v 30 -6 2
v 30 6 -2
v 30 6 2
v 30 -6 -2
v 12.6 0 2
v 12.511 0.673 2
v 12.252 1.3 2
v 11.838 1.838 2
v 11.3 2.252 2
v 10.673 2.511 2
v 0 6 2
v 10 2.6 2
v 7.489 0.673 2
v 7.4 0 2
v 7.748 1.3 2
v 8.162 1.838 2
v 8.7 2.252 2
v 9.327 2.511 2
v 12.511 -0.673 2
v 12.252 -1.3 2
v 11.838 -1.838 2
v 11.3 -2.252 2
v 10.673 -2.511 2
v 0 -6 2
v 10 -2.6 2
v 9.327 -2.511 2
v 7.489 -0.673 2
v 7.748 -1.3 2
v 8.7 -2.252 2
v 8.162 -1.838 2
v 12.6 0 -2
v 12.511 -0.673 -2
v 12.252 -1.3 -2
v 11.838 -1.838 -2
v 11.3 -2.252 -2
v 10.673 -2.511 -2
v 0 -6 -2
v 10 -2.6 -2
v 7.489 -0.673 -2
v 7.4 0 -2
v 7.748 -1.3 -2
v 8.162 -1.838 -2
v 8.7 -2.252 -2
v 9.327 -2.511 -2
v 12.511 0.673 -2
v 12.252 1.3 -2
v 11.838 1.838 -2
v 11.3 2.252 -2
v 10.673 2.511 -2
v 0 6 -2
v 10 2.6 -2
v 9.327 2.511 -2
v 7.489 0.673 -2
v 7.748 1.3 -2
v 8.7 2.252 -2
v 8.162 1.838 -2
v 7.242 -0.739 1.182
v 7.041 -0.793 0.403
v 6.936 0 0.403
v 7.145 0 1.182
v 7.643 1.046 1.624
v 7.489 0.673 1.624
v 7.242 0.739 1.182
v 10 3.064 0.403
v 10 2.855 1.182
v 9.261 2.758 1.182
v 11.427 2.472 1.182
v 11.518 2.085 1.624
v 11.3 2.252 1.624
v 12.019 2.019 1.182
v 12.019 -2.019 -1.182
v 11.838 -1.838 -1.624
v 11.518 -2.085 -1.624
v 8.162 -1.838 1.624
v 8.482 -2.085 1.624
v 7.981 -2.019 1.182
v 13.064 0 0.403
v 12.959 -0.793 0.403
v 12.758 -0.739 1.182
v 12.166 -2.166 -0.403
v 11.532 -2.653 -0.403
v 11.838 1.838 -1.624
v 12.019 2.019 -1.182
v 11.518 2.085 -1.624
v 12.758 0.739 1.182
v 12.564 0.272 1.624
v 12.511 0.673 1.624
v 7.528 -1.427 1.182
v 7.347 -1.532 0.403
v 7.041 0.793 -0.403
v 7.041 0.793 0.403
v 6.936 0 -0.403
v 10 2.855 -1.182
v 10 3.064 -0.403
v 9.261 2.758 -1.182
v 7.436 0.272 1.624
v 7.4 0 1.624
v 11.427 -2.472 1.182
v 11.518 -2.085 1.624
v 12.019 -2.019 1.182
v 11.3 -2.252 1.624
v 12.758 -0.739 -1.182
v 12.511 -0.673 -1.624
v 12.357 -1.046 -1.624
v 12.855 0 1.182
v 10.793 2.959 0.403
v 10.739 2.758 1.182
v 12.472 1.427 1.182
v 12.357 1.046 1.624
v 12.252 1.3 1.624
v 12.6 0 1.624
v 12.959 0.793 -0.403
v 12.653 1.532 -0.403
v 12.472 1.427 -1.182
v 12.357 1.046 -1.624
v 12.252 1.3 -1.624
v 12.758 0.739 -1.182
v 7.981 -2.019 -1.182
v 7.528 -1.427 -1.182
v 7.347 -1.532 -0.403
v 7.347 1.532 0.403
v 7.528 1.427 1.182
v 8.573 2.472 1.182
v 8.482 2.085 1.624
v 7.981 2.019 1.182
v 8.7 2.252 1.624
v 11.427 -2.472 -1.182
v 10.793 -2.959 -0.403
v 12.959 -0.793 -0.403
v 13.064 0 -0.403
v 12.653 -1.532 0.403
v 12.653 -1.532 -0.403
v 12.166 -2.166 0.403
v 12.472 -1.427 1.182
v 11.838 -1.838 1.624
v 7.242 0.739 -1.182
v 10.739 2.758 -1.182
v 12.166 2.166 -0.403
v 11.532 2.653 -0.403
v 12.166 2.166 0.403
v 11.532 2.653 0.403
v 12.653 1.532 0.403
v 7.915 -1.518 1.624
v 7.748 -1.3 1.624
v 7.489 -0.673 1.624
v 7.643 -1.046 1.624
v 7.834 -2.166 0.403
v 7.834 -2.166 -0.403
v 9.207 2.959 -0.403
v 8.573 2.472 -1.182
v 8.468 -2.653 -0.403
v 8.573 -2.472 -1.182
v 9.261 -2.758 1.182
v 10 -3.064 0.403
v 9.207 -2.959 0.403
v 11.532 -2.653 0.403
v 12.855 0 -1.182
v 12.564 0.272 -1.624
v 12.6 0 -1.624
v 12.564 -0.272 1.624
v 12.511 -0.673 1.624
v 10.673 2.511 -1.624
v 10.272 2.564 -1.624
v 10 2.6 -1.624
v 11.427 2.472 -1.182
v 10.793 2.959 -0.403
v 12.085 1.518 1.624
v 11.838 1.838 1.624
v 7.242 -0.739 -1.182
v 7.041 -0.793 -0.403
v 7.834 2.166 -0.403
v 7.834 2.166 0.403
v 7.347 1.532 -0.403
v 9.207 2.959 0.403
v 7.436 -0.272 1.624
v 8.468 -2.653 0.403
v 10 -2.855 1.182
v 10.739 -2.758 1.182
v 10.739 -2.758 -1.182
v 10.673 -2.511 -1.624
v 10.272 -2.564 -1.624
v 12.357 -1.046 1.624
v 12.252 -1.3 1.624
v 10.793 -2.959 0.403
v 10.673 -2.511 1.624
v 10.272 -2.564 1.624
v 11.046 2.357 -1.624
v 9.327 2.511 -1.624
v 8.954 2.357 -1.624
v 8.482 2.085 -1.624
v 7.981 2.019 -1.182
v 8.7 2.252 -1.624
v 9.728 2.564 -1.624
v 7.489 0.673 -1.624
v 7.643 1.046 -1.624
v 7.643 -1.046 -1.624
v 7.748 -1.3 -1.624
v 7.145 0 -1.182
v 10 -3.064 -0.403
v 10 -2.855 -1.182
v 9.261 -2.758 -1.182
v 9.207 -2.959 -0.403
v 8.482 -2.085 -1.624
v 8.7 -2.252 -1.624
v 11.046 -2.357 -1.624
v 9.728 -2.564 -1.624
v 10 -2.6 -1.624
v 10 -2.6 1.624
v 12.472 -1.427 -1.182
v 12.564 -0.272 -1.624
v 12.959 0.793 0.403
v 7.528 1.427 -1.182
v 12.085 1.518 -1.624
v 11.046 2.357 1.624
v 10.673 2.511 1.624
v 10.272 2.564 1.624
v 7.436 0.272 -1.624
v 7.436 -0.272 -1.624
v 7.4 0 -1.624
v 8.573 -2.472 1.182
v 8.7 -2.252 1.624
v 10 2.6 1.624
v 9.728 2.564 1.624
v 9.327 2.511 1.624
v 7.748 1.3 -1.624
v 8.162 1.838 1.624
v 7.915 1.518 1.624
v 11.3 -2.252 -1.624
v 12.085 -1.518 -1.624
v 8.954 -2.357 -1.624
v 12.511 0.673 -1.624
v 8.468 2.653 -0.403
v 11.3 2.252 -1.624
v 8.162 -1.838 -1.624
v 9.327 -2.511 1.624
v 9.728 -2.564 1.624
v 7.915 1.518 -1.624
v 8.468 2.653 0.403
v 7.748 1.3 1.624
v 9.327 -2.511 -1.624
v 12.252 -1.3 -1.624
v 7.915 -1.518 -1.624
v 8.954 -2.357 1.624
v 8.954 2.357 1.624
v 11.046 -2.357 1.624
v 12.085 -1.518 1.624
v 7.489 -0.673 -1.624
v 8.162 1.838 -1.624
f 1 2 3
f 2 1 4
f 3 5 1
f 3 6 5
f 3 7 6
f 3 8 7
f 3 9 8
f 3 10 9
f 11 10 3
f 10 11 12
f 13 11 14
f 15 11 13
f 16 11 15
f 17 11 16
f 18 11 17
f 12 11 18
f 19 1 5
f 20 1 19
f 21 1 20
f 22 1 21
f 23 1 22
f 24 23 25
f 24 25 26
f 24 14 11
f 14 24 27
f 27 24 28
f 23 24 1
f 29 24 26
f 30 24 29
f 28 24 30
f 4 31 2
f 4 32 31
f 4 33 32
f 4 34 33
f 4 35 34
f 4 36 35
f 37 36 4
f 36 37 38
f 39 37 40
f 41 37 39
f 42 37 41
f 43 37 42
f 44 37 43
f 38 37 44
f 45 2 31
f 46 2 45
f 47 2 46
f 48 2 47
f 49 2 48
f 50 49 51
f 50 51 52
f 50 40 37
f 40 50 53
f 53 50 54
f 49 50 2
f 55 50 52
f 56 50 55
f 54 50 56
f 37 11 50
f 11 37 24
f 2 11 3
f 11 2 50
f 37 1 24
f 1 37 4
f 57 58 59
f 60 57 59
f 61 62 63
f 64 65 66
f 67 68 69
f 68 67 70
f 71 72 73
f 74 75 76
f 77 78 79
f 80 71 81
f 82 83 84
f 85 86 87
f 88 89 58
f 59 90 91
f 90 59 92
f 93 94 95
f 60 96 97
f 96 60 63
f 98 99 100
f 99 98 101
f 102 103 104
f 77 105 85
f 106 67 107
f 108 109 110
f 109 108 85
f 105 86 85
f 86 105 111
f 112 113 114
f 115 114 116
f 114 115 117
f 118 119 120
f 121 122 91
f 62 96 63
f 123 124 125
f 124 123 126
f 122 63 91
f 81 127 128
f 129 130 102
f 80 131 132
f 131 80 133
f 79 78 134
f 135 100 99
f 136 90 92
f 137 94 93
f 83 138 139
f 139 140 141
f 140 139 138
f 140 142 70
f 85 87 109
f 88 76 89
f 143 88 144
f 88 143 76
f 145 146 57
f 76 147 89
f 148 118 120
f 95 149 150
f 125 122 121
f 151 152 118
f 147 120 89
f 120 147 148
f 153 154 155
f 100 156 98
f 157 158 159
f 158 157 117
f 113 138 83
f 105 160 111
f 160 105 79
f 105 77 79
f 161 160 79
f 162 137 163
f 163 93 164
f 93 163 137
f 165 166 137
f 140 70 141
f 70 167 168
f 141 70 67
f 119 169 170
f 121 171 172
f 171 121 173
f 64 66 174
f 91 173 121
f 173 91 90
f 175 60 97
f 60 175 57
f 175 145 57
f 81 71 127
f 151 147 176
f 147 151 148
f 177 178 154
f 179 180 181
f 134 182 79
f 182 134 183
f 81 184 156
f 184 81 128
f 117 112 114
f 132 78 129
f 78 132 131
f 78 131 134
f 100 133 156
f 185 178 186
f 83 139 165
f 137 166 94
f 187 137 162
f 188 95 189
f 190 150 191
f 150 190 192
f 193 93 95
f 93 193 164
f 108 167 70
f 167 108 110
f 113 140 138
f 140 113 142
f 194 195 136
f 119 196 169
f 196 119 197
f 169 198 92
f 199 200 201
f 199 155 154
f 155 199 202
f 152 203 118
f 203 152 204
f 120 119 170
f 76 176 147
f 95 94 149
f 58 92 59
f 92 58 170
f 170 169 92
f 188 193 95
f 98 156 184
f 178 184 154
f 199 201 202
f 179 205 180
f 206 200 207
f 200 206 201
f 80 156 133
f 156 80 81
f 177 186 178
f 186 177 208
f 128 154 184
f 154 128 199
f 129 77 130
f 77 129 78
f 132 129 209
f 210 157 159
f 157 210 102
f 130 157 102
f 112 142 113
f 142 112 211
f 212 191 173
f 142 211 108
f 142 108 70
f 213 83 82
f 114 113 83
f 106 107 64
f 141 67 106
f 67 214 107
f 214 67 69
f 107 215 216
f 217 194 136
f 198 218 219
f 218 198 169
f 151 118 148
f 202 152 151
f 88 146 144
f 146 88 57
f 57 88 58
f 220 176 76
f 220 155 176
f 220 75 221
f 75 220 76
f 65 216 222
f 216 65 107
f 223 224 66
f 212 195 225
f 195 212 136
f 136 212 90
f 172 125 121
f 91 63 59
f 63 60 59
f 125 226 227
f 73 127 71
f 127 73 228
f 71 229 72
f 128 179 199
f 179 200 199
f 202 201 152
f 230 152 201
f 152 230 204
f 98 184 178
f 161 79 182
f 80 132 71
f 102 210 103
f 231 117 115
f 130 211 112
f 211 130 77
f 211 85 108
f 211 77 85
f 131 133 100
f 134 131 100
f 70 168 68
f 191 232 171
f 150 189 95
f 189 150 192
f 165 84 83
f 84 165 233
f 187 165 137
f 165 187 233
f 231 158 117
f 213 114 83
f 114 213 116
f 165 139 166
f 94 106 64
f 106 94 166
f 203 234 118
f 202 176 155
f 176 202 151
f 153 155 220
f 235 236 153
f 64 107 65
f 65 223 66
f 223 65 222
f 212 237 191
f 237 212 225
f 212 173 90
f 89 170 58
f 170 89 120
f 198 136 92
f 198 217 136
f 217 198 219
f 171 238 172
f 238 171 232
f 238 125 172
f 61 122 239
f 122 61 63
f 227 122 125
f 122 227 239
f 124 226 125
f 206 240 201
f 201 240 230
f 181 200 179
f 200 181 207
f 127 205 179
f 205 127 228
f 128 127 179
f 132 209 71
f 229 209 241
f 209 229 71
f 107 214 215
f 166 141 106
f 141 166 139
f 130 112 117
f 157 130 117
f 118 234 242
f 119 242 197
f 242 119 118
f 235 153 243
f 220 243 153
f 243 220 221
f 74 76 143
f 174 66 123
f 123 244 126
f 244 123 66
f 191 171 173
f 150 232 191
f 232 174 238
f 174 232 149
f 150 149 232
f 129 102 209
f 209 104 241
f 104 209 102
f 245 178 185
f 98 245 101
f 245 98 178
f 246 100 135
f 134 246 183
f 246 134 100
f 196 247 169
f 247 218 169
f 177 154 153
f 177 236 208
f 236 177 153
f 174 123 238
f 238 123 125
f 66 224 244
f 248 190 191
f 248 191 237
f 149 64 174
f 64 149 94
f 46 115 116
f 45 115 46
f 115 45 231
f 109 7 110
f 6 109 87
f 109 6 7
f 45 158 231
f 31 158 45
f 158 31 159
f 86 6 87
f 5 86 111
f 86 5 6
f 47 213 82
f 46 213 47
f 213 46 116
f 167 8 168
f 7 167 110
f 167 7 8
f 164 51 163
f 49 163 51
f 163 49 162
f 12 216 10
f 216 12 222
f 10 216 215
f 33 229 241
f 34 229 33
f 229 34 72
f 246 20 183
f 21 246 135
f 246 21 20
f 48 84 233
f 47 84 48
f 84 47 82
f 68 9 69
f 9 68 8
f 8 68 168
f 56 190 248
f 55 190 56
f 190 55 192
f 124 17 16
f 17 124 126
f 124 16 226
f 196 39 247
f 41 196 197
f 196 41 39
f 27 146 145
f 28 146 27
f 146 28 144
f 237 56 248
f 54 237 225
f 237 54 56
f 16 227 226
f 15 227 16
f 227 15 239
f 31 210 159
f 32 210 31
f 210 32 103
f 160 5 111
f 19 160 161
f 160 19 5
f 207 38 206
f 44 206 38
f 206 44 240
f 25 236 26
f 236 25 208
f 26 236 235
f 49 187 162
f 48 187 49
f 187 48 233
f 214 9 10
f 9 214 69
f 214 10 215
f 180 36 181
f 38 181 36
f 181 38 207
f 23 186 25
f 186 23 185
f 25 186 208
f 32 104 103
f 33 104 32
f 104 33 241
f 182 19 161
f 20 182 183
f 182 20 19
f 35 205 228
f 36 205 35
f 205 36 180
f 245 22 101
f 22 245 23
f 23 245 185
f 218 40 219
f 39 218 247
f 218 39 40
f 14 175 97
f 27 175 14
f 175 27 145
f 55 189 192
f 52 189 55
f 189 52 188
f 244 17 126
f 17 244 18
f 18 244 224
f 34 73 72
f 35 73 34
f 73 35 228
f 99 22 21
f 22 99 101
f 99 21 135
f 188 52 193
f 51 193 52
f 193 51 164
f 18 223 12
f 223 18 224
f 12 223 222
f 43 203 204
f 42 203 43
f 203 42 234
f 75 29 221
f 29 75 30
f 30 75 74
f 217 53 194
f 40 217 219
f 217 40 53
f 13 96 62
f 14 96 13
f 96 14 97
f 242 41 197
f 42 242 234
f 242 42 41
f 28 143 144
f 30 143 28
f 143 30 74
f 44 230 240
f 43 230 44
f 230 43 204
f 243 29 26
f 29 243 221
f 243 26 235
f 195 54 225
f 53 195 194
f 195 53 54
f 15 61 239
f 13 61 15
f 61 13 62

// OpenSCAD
$fn=24;

difference() {
translate([15,0,0])
cube([30,12,4], center=true);

// socket 1 with 6mm 
translate([10,0,0])
    sphere(d=6.18);

translate([10,0,0])
cylinder(h=10, d=5.2, center=true);
    
}
